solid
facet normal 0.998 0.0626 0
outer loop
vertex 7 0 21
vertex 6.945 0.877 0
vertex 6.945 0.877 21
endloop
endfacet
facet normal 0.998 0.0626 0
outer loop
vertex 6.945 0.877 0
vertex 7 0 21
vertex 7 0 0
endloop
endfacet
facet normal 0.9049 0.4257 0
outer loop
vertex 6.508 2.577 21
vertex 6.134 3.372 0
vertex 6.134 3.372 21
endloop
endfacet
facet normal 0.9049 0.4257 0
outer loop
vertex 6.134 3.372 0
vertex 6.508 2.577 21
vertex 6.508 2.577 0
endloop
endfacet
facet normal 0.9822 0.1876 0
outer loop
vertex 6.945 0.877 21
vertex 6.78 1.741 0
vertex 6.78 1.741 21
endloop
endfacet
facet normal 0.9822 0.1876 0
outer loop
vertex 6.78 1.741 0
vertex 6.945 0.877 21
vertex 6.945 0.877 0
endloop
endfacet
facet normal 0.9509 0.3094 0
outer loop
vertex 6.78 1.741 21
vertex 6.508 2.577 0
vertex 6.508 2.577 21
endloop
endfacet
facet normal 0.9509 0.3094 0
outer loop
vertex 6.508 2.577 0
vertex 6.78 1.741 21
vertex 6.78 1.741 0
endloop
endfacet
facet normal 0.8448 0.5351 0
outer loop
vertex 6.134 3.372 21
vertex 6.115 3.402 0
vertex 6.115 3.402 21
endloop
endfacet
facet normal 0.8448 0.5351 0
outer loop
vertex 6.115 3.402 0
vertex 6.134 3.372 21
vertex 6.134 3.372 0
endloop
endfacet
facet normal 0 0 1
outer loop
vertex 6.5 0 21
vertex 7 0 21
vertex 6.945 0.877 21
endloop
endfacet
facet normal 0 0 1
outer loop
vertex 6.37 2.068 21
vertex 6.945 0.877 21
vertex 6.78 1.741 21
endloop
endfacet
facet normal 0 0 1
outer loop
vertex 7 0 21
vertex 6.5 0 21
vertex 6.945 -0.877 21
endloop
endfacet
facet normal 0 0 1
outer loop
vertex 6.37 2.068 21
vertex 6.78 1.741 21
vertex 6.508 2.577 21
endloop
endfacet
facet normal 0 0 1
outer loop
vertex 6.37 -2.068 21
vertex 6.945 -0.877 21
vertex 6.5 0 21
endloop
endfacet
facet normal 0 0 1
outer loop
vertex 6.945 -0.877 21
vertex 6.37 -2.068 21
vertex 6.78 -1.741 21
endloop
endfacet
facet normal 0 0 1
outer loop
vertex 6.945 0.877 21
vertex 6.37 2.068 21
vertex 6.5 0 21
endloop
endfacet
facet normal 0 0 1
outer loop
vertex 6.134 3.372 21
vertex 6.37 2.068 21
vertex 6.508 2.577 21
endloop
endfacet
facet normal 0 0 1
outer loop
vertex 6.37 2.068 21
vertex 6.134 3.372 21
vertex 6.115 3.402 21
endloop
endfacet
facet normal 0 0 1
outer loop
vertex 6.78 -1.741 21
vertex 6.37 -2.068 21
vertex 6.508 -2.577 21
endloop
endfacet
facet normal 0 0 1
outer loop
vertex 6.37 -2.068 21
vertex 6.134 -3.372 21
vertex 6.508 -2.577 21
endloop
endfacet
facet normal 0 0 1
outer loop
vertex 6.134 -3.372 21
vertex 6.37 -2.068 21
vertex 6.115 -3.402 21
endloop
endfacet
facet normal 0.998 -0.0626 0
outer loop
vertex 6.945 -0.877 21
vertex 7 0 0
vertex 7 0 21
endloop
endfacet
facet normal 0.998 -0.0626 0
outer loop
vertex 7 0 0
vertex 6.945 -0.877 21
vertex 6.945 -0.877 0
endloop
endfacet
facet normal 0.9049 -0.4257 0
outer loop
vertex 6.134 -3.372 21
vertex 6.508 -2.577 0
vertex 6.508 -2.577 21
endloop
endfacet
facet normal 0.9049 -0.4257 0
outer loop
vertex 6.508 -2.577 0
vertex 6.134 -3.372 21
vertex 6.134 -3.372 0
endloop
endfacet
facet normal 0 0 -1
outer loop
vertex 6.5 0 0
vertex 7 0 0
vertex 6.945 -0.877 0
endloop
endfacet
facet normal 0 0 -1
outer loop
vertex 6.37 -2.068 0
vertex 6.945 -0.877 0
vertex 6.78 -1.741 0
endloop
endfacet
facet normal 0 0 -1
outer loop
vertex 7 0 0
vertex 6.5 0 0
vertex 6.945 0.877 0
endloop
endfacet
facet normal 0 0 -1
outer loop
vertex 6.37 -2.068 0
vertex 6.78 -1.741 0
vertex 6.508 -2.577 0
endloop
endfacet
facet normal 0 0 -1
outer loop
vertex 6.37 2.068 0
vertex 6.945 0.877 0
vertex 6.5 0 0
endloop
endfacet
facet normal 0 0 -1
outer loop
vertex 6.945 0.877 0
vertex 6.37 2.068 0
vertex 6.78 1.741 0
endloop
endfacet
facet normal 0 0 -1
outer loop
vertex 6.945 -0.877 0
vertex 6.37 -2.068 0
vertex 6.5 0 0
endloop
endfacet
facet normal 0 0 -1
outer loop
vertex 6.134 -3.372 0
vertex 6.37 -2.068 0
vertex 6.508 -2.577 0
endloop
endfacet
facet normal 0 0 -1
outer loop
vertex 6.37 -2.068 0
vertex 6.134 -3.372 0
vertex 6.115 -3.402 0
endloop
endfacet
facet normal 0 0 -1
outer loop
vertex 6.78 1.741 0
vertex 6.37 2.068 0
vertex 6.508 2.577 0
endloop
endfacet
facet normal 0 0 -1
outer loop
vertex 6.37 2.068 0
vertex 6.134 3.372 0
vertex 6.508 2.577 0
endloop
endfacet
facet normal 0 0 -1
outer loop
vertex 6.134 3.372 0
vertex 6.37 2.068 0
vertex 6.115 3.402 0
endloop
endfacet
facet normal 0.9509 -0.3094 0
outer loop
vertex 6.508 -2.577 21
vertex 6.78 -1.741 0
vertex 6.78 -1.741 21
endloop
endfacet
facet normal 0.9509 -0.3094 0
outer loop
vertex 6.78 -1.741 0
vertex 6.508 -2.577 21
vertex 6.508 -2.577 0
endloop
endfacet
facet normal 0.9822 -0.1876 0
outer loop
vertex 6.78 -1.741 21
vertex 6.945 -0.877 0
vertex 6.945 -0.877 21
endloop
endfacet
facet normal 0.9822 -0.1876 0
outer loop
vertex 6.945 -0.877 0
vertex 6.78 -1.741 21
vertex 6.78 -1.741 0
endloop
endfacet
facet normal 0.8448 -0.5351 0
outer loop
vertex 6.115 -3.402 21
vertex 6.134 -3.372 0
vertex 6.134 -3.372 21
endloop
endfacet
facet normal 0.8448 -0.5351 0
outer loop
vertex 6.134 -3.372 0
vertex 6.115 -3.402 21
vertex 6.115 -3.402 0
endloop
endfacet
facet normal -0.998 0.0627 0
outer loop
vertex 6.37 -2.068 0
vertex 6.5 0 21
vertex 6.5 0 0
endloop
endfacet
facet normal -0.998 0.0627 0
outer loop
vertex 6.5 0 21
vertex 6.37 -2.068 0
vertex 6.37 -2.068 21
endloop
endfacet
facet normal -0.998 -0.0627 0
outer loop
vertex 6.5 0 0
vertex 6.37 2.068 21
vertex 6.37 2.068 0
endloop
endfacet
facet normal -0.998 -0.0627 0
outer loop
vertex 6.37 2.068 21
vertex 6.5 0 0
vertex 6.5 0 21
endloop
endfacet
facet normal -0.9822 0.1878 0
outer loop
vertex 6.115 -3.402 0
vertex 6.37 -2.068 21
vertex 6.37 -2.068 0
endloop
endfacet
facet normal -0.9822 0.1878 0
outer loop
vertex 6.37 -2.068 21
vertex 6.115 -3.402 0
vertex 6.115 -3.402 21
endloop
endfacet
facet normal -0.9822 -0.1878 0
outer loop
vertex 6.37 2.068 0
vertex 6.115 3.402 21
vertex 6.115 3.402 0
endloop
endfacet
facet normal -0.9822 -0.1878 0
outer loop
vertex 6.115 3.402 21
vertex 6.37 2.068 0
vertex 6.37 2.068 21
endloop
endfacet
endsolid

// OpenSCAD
$fn = 50;


difference() {
	union() {
		cylinder(h = 21, r = 7.0000000000);
		translate(v = [-13.0000000000, 0, 0]) {
			cylinder(h = 21, r = 7.0000000000);
		}
	}
	union() {
		cylinder(h = 21, r = 3.2500000000);
		cylinder(h = 21, r = 1.8000000000);
		cylinder(h = 21, r = 1.8000000000);
		cylinder(h = 21, r = 1.8000000000);
		translate(v = [-17.5000000000, 0, 0]) {
			hull() {
				translate(v = [-3.7500000000, 0.0000000000, 0]) {
					cylinder(h = 21, r = 7.5000000000);
				}
				translate(v = [3.7500000000, 0.0000000000, 0]) {
					cylinder(h = 21, r = 7.5000000000);
				}
				translate(v = [-3.7500000000, -0.0000000000, 0]) {
					cylinder(h = 21, r = 7.5000000000);
				}
				translate(v = [3.7500000000, -0.0000000000, 0]) {
					cylinder(h = 21, r = 7.5000000000);
				}
			}
		}
		translate(v = [-10.0000000000, 0, 0.0000000000]) {
			cylinder(h = 21, r = 16.5000000000);
		}
	}
}
